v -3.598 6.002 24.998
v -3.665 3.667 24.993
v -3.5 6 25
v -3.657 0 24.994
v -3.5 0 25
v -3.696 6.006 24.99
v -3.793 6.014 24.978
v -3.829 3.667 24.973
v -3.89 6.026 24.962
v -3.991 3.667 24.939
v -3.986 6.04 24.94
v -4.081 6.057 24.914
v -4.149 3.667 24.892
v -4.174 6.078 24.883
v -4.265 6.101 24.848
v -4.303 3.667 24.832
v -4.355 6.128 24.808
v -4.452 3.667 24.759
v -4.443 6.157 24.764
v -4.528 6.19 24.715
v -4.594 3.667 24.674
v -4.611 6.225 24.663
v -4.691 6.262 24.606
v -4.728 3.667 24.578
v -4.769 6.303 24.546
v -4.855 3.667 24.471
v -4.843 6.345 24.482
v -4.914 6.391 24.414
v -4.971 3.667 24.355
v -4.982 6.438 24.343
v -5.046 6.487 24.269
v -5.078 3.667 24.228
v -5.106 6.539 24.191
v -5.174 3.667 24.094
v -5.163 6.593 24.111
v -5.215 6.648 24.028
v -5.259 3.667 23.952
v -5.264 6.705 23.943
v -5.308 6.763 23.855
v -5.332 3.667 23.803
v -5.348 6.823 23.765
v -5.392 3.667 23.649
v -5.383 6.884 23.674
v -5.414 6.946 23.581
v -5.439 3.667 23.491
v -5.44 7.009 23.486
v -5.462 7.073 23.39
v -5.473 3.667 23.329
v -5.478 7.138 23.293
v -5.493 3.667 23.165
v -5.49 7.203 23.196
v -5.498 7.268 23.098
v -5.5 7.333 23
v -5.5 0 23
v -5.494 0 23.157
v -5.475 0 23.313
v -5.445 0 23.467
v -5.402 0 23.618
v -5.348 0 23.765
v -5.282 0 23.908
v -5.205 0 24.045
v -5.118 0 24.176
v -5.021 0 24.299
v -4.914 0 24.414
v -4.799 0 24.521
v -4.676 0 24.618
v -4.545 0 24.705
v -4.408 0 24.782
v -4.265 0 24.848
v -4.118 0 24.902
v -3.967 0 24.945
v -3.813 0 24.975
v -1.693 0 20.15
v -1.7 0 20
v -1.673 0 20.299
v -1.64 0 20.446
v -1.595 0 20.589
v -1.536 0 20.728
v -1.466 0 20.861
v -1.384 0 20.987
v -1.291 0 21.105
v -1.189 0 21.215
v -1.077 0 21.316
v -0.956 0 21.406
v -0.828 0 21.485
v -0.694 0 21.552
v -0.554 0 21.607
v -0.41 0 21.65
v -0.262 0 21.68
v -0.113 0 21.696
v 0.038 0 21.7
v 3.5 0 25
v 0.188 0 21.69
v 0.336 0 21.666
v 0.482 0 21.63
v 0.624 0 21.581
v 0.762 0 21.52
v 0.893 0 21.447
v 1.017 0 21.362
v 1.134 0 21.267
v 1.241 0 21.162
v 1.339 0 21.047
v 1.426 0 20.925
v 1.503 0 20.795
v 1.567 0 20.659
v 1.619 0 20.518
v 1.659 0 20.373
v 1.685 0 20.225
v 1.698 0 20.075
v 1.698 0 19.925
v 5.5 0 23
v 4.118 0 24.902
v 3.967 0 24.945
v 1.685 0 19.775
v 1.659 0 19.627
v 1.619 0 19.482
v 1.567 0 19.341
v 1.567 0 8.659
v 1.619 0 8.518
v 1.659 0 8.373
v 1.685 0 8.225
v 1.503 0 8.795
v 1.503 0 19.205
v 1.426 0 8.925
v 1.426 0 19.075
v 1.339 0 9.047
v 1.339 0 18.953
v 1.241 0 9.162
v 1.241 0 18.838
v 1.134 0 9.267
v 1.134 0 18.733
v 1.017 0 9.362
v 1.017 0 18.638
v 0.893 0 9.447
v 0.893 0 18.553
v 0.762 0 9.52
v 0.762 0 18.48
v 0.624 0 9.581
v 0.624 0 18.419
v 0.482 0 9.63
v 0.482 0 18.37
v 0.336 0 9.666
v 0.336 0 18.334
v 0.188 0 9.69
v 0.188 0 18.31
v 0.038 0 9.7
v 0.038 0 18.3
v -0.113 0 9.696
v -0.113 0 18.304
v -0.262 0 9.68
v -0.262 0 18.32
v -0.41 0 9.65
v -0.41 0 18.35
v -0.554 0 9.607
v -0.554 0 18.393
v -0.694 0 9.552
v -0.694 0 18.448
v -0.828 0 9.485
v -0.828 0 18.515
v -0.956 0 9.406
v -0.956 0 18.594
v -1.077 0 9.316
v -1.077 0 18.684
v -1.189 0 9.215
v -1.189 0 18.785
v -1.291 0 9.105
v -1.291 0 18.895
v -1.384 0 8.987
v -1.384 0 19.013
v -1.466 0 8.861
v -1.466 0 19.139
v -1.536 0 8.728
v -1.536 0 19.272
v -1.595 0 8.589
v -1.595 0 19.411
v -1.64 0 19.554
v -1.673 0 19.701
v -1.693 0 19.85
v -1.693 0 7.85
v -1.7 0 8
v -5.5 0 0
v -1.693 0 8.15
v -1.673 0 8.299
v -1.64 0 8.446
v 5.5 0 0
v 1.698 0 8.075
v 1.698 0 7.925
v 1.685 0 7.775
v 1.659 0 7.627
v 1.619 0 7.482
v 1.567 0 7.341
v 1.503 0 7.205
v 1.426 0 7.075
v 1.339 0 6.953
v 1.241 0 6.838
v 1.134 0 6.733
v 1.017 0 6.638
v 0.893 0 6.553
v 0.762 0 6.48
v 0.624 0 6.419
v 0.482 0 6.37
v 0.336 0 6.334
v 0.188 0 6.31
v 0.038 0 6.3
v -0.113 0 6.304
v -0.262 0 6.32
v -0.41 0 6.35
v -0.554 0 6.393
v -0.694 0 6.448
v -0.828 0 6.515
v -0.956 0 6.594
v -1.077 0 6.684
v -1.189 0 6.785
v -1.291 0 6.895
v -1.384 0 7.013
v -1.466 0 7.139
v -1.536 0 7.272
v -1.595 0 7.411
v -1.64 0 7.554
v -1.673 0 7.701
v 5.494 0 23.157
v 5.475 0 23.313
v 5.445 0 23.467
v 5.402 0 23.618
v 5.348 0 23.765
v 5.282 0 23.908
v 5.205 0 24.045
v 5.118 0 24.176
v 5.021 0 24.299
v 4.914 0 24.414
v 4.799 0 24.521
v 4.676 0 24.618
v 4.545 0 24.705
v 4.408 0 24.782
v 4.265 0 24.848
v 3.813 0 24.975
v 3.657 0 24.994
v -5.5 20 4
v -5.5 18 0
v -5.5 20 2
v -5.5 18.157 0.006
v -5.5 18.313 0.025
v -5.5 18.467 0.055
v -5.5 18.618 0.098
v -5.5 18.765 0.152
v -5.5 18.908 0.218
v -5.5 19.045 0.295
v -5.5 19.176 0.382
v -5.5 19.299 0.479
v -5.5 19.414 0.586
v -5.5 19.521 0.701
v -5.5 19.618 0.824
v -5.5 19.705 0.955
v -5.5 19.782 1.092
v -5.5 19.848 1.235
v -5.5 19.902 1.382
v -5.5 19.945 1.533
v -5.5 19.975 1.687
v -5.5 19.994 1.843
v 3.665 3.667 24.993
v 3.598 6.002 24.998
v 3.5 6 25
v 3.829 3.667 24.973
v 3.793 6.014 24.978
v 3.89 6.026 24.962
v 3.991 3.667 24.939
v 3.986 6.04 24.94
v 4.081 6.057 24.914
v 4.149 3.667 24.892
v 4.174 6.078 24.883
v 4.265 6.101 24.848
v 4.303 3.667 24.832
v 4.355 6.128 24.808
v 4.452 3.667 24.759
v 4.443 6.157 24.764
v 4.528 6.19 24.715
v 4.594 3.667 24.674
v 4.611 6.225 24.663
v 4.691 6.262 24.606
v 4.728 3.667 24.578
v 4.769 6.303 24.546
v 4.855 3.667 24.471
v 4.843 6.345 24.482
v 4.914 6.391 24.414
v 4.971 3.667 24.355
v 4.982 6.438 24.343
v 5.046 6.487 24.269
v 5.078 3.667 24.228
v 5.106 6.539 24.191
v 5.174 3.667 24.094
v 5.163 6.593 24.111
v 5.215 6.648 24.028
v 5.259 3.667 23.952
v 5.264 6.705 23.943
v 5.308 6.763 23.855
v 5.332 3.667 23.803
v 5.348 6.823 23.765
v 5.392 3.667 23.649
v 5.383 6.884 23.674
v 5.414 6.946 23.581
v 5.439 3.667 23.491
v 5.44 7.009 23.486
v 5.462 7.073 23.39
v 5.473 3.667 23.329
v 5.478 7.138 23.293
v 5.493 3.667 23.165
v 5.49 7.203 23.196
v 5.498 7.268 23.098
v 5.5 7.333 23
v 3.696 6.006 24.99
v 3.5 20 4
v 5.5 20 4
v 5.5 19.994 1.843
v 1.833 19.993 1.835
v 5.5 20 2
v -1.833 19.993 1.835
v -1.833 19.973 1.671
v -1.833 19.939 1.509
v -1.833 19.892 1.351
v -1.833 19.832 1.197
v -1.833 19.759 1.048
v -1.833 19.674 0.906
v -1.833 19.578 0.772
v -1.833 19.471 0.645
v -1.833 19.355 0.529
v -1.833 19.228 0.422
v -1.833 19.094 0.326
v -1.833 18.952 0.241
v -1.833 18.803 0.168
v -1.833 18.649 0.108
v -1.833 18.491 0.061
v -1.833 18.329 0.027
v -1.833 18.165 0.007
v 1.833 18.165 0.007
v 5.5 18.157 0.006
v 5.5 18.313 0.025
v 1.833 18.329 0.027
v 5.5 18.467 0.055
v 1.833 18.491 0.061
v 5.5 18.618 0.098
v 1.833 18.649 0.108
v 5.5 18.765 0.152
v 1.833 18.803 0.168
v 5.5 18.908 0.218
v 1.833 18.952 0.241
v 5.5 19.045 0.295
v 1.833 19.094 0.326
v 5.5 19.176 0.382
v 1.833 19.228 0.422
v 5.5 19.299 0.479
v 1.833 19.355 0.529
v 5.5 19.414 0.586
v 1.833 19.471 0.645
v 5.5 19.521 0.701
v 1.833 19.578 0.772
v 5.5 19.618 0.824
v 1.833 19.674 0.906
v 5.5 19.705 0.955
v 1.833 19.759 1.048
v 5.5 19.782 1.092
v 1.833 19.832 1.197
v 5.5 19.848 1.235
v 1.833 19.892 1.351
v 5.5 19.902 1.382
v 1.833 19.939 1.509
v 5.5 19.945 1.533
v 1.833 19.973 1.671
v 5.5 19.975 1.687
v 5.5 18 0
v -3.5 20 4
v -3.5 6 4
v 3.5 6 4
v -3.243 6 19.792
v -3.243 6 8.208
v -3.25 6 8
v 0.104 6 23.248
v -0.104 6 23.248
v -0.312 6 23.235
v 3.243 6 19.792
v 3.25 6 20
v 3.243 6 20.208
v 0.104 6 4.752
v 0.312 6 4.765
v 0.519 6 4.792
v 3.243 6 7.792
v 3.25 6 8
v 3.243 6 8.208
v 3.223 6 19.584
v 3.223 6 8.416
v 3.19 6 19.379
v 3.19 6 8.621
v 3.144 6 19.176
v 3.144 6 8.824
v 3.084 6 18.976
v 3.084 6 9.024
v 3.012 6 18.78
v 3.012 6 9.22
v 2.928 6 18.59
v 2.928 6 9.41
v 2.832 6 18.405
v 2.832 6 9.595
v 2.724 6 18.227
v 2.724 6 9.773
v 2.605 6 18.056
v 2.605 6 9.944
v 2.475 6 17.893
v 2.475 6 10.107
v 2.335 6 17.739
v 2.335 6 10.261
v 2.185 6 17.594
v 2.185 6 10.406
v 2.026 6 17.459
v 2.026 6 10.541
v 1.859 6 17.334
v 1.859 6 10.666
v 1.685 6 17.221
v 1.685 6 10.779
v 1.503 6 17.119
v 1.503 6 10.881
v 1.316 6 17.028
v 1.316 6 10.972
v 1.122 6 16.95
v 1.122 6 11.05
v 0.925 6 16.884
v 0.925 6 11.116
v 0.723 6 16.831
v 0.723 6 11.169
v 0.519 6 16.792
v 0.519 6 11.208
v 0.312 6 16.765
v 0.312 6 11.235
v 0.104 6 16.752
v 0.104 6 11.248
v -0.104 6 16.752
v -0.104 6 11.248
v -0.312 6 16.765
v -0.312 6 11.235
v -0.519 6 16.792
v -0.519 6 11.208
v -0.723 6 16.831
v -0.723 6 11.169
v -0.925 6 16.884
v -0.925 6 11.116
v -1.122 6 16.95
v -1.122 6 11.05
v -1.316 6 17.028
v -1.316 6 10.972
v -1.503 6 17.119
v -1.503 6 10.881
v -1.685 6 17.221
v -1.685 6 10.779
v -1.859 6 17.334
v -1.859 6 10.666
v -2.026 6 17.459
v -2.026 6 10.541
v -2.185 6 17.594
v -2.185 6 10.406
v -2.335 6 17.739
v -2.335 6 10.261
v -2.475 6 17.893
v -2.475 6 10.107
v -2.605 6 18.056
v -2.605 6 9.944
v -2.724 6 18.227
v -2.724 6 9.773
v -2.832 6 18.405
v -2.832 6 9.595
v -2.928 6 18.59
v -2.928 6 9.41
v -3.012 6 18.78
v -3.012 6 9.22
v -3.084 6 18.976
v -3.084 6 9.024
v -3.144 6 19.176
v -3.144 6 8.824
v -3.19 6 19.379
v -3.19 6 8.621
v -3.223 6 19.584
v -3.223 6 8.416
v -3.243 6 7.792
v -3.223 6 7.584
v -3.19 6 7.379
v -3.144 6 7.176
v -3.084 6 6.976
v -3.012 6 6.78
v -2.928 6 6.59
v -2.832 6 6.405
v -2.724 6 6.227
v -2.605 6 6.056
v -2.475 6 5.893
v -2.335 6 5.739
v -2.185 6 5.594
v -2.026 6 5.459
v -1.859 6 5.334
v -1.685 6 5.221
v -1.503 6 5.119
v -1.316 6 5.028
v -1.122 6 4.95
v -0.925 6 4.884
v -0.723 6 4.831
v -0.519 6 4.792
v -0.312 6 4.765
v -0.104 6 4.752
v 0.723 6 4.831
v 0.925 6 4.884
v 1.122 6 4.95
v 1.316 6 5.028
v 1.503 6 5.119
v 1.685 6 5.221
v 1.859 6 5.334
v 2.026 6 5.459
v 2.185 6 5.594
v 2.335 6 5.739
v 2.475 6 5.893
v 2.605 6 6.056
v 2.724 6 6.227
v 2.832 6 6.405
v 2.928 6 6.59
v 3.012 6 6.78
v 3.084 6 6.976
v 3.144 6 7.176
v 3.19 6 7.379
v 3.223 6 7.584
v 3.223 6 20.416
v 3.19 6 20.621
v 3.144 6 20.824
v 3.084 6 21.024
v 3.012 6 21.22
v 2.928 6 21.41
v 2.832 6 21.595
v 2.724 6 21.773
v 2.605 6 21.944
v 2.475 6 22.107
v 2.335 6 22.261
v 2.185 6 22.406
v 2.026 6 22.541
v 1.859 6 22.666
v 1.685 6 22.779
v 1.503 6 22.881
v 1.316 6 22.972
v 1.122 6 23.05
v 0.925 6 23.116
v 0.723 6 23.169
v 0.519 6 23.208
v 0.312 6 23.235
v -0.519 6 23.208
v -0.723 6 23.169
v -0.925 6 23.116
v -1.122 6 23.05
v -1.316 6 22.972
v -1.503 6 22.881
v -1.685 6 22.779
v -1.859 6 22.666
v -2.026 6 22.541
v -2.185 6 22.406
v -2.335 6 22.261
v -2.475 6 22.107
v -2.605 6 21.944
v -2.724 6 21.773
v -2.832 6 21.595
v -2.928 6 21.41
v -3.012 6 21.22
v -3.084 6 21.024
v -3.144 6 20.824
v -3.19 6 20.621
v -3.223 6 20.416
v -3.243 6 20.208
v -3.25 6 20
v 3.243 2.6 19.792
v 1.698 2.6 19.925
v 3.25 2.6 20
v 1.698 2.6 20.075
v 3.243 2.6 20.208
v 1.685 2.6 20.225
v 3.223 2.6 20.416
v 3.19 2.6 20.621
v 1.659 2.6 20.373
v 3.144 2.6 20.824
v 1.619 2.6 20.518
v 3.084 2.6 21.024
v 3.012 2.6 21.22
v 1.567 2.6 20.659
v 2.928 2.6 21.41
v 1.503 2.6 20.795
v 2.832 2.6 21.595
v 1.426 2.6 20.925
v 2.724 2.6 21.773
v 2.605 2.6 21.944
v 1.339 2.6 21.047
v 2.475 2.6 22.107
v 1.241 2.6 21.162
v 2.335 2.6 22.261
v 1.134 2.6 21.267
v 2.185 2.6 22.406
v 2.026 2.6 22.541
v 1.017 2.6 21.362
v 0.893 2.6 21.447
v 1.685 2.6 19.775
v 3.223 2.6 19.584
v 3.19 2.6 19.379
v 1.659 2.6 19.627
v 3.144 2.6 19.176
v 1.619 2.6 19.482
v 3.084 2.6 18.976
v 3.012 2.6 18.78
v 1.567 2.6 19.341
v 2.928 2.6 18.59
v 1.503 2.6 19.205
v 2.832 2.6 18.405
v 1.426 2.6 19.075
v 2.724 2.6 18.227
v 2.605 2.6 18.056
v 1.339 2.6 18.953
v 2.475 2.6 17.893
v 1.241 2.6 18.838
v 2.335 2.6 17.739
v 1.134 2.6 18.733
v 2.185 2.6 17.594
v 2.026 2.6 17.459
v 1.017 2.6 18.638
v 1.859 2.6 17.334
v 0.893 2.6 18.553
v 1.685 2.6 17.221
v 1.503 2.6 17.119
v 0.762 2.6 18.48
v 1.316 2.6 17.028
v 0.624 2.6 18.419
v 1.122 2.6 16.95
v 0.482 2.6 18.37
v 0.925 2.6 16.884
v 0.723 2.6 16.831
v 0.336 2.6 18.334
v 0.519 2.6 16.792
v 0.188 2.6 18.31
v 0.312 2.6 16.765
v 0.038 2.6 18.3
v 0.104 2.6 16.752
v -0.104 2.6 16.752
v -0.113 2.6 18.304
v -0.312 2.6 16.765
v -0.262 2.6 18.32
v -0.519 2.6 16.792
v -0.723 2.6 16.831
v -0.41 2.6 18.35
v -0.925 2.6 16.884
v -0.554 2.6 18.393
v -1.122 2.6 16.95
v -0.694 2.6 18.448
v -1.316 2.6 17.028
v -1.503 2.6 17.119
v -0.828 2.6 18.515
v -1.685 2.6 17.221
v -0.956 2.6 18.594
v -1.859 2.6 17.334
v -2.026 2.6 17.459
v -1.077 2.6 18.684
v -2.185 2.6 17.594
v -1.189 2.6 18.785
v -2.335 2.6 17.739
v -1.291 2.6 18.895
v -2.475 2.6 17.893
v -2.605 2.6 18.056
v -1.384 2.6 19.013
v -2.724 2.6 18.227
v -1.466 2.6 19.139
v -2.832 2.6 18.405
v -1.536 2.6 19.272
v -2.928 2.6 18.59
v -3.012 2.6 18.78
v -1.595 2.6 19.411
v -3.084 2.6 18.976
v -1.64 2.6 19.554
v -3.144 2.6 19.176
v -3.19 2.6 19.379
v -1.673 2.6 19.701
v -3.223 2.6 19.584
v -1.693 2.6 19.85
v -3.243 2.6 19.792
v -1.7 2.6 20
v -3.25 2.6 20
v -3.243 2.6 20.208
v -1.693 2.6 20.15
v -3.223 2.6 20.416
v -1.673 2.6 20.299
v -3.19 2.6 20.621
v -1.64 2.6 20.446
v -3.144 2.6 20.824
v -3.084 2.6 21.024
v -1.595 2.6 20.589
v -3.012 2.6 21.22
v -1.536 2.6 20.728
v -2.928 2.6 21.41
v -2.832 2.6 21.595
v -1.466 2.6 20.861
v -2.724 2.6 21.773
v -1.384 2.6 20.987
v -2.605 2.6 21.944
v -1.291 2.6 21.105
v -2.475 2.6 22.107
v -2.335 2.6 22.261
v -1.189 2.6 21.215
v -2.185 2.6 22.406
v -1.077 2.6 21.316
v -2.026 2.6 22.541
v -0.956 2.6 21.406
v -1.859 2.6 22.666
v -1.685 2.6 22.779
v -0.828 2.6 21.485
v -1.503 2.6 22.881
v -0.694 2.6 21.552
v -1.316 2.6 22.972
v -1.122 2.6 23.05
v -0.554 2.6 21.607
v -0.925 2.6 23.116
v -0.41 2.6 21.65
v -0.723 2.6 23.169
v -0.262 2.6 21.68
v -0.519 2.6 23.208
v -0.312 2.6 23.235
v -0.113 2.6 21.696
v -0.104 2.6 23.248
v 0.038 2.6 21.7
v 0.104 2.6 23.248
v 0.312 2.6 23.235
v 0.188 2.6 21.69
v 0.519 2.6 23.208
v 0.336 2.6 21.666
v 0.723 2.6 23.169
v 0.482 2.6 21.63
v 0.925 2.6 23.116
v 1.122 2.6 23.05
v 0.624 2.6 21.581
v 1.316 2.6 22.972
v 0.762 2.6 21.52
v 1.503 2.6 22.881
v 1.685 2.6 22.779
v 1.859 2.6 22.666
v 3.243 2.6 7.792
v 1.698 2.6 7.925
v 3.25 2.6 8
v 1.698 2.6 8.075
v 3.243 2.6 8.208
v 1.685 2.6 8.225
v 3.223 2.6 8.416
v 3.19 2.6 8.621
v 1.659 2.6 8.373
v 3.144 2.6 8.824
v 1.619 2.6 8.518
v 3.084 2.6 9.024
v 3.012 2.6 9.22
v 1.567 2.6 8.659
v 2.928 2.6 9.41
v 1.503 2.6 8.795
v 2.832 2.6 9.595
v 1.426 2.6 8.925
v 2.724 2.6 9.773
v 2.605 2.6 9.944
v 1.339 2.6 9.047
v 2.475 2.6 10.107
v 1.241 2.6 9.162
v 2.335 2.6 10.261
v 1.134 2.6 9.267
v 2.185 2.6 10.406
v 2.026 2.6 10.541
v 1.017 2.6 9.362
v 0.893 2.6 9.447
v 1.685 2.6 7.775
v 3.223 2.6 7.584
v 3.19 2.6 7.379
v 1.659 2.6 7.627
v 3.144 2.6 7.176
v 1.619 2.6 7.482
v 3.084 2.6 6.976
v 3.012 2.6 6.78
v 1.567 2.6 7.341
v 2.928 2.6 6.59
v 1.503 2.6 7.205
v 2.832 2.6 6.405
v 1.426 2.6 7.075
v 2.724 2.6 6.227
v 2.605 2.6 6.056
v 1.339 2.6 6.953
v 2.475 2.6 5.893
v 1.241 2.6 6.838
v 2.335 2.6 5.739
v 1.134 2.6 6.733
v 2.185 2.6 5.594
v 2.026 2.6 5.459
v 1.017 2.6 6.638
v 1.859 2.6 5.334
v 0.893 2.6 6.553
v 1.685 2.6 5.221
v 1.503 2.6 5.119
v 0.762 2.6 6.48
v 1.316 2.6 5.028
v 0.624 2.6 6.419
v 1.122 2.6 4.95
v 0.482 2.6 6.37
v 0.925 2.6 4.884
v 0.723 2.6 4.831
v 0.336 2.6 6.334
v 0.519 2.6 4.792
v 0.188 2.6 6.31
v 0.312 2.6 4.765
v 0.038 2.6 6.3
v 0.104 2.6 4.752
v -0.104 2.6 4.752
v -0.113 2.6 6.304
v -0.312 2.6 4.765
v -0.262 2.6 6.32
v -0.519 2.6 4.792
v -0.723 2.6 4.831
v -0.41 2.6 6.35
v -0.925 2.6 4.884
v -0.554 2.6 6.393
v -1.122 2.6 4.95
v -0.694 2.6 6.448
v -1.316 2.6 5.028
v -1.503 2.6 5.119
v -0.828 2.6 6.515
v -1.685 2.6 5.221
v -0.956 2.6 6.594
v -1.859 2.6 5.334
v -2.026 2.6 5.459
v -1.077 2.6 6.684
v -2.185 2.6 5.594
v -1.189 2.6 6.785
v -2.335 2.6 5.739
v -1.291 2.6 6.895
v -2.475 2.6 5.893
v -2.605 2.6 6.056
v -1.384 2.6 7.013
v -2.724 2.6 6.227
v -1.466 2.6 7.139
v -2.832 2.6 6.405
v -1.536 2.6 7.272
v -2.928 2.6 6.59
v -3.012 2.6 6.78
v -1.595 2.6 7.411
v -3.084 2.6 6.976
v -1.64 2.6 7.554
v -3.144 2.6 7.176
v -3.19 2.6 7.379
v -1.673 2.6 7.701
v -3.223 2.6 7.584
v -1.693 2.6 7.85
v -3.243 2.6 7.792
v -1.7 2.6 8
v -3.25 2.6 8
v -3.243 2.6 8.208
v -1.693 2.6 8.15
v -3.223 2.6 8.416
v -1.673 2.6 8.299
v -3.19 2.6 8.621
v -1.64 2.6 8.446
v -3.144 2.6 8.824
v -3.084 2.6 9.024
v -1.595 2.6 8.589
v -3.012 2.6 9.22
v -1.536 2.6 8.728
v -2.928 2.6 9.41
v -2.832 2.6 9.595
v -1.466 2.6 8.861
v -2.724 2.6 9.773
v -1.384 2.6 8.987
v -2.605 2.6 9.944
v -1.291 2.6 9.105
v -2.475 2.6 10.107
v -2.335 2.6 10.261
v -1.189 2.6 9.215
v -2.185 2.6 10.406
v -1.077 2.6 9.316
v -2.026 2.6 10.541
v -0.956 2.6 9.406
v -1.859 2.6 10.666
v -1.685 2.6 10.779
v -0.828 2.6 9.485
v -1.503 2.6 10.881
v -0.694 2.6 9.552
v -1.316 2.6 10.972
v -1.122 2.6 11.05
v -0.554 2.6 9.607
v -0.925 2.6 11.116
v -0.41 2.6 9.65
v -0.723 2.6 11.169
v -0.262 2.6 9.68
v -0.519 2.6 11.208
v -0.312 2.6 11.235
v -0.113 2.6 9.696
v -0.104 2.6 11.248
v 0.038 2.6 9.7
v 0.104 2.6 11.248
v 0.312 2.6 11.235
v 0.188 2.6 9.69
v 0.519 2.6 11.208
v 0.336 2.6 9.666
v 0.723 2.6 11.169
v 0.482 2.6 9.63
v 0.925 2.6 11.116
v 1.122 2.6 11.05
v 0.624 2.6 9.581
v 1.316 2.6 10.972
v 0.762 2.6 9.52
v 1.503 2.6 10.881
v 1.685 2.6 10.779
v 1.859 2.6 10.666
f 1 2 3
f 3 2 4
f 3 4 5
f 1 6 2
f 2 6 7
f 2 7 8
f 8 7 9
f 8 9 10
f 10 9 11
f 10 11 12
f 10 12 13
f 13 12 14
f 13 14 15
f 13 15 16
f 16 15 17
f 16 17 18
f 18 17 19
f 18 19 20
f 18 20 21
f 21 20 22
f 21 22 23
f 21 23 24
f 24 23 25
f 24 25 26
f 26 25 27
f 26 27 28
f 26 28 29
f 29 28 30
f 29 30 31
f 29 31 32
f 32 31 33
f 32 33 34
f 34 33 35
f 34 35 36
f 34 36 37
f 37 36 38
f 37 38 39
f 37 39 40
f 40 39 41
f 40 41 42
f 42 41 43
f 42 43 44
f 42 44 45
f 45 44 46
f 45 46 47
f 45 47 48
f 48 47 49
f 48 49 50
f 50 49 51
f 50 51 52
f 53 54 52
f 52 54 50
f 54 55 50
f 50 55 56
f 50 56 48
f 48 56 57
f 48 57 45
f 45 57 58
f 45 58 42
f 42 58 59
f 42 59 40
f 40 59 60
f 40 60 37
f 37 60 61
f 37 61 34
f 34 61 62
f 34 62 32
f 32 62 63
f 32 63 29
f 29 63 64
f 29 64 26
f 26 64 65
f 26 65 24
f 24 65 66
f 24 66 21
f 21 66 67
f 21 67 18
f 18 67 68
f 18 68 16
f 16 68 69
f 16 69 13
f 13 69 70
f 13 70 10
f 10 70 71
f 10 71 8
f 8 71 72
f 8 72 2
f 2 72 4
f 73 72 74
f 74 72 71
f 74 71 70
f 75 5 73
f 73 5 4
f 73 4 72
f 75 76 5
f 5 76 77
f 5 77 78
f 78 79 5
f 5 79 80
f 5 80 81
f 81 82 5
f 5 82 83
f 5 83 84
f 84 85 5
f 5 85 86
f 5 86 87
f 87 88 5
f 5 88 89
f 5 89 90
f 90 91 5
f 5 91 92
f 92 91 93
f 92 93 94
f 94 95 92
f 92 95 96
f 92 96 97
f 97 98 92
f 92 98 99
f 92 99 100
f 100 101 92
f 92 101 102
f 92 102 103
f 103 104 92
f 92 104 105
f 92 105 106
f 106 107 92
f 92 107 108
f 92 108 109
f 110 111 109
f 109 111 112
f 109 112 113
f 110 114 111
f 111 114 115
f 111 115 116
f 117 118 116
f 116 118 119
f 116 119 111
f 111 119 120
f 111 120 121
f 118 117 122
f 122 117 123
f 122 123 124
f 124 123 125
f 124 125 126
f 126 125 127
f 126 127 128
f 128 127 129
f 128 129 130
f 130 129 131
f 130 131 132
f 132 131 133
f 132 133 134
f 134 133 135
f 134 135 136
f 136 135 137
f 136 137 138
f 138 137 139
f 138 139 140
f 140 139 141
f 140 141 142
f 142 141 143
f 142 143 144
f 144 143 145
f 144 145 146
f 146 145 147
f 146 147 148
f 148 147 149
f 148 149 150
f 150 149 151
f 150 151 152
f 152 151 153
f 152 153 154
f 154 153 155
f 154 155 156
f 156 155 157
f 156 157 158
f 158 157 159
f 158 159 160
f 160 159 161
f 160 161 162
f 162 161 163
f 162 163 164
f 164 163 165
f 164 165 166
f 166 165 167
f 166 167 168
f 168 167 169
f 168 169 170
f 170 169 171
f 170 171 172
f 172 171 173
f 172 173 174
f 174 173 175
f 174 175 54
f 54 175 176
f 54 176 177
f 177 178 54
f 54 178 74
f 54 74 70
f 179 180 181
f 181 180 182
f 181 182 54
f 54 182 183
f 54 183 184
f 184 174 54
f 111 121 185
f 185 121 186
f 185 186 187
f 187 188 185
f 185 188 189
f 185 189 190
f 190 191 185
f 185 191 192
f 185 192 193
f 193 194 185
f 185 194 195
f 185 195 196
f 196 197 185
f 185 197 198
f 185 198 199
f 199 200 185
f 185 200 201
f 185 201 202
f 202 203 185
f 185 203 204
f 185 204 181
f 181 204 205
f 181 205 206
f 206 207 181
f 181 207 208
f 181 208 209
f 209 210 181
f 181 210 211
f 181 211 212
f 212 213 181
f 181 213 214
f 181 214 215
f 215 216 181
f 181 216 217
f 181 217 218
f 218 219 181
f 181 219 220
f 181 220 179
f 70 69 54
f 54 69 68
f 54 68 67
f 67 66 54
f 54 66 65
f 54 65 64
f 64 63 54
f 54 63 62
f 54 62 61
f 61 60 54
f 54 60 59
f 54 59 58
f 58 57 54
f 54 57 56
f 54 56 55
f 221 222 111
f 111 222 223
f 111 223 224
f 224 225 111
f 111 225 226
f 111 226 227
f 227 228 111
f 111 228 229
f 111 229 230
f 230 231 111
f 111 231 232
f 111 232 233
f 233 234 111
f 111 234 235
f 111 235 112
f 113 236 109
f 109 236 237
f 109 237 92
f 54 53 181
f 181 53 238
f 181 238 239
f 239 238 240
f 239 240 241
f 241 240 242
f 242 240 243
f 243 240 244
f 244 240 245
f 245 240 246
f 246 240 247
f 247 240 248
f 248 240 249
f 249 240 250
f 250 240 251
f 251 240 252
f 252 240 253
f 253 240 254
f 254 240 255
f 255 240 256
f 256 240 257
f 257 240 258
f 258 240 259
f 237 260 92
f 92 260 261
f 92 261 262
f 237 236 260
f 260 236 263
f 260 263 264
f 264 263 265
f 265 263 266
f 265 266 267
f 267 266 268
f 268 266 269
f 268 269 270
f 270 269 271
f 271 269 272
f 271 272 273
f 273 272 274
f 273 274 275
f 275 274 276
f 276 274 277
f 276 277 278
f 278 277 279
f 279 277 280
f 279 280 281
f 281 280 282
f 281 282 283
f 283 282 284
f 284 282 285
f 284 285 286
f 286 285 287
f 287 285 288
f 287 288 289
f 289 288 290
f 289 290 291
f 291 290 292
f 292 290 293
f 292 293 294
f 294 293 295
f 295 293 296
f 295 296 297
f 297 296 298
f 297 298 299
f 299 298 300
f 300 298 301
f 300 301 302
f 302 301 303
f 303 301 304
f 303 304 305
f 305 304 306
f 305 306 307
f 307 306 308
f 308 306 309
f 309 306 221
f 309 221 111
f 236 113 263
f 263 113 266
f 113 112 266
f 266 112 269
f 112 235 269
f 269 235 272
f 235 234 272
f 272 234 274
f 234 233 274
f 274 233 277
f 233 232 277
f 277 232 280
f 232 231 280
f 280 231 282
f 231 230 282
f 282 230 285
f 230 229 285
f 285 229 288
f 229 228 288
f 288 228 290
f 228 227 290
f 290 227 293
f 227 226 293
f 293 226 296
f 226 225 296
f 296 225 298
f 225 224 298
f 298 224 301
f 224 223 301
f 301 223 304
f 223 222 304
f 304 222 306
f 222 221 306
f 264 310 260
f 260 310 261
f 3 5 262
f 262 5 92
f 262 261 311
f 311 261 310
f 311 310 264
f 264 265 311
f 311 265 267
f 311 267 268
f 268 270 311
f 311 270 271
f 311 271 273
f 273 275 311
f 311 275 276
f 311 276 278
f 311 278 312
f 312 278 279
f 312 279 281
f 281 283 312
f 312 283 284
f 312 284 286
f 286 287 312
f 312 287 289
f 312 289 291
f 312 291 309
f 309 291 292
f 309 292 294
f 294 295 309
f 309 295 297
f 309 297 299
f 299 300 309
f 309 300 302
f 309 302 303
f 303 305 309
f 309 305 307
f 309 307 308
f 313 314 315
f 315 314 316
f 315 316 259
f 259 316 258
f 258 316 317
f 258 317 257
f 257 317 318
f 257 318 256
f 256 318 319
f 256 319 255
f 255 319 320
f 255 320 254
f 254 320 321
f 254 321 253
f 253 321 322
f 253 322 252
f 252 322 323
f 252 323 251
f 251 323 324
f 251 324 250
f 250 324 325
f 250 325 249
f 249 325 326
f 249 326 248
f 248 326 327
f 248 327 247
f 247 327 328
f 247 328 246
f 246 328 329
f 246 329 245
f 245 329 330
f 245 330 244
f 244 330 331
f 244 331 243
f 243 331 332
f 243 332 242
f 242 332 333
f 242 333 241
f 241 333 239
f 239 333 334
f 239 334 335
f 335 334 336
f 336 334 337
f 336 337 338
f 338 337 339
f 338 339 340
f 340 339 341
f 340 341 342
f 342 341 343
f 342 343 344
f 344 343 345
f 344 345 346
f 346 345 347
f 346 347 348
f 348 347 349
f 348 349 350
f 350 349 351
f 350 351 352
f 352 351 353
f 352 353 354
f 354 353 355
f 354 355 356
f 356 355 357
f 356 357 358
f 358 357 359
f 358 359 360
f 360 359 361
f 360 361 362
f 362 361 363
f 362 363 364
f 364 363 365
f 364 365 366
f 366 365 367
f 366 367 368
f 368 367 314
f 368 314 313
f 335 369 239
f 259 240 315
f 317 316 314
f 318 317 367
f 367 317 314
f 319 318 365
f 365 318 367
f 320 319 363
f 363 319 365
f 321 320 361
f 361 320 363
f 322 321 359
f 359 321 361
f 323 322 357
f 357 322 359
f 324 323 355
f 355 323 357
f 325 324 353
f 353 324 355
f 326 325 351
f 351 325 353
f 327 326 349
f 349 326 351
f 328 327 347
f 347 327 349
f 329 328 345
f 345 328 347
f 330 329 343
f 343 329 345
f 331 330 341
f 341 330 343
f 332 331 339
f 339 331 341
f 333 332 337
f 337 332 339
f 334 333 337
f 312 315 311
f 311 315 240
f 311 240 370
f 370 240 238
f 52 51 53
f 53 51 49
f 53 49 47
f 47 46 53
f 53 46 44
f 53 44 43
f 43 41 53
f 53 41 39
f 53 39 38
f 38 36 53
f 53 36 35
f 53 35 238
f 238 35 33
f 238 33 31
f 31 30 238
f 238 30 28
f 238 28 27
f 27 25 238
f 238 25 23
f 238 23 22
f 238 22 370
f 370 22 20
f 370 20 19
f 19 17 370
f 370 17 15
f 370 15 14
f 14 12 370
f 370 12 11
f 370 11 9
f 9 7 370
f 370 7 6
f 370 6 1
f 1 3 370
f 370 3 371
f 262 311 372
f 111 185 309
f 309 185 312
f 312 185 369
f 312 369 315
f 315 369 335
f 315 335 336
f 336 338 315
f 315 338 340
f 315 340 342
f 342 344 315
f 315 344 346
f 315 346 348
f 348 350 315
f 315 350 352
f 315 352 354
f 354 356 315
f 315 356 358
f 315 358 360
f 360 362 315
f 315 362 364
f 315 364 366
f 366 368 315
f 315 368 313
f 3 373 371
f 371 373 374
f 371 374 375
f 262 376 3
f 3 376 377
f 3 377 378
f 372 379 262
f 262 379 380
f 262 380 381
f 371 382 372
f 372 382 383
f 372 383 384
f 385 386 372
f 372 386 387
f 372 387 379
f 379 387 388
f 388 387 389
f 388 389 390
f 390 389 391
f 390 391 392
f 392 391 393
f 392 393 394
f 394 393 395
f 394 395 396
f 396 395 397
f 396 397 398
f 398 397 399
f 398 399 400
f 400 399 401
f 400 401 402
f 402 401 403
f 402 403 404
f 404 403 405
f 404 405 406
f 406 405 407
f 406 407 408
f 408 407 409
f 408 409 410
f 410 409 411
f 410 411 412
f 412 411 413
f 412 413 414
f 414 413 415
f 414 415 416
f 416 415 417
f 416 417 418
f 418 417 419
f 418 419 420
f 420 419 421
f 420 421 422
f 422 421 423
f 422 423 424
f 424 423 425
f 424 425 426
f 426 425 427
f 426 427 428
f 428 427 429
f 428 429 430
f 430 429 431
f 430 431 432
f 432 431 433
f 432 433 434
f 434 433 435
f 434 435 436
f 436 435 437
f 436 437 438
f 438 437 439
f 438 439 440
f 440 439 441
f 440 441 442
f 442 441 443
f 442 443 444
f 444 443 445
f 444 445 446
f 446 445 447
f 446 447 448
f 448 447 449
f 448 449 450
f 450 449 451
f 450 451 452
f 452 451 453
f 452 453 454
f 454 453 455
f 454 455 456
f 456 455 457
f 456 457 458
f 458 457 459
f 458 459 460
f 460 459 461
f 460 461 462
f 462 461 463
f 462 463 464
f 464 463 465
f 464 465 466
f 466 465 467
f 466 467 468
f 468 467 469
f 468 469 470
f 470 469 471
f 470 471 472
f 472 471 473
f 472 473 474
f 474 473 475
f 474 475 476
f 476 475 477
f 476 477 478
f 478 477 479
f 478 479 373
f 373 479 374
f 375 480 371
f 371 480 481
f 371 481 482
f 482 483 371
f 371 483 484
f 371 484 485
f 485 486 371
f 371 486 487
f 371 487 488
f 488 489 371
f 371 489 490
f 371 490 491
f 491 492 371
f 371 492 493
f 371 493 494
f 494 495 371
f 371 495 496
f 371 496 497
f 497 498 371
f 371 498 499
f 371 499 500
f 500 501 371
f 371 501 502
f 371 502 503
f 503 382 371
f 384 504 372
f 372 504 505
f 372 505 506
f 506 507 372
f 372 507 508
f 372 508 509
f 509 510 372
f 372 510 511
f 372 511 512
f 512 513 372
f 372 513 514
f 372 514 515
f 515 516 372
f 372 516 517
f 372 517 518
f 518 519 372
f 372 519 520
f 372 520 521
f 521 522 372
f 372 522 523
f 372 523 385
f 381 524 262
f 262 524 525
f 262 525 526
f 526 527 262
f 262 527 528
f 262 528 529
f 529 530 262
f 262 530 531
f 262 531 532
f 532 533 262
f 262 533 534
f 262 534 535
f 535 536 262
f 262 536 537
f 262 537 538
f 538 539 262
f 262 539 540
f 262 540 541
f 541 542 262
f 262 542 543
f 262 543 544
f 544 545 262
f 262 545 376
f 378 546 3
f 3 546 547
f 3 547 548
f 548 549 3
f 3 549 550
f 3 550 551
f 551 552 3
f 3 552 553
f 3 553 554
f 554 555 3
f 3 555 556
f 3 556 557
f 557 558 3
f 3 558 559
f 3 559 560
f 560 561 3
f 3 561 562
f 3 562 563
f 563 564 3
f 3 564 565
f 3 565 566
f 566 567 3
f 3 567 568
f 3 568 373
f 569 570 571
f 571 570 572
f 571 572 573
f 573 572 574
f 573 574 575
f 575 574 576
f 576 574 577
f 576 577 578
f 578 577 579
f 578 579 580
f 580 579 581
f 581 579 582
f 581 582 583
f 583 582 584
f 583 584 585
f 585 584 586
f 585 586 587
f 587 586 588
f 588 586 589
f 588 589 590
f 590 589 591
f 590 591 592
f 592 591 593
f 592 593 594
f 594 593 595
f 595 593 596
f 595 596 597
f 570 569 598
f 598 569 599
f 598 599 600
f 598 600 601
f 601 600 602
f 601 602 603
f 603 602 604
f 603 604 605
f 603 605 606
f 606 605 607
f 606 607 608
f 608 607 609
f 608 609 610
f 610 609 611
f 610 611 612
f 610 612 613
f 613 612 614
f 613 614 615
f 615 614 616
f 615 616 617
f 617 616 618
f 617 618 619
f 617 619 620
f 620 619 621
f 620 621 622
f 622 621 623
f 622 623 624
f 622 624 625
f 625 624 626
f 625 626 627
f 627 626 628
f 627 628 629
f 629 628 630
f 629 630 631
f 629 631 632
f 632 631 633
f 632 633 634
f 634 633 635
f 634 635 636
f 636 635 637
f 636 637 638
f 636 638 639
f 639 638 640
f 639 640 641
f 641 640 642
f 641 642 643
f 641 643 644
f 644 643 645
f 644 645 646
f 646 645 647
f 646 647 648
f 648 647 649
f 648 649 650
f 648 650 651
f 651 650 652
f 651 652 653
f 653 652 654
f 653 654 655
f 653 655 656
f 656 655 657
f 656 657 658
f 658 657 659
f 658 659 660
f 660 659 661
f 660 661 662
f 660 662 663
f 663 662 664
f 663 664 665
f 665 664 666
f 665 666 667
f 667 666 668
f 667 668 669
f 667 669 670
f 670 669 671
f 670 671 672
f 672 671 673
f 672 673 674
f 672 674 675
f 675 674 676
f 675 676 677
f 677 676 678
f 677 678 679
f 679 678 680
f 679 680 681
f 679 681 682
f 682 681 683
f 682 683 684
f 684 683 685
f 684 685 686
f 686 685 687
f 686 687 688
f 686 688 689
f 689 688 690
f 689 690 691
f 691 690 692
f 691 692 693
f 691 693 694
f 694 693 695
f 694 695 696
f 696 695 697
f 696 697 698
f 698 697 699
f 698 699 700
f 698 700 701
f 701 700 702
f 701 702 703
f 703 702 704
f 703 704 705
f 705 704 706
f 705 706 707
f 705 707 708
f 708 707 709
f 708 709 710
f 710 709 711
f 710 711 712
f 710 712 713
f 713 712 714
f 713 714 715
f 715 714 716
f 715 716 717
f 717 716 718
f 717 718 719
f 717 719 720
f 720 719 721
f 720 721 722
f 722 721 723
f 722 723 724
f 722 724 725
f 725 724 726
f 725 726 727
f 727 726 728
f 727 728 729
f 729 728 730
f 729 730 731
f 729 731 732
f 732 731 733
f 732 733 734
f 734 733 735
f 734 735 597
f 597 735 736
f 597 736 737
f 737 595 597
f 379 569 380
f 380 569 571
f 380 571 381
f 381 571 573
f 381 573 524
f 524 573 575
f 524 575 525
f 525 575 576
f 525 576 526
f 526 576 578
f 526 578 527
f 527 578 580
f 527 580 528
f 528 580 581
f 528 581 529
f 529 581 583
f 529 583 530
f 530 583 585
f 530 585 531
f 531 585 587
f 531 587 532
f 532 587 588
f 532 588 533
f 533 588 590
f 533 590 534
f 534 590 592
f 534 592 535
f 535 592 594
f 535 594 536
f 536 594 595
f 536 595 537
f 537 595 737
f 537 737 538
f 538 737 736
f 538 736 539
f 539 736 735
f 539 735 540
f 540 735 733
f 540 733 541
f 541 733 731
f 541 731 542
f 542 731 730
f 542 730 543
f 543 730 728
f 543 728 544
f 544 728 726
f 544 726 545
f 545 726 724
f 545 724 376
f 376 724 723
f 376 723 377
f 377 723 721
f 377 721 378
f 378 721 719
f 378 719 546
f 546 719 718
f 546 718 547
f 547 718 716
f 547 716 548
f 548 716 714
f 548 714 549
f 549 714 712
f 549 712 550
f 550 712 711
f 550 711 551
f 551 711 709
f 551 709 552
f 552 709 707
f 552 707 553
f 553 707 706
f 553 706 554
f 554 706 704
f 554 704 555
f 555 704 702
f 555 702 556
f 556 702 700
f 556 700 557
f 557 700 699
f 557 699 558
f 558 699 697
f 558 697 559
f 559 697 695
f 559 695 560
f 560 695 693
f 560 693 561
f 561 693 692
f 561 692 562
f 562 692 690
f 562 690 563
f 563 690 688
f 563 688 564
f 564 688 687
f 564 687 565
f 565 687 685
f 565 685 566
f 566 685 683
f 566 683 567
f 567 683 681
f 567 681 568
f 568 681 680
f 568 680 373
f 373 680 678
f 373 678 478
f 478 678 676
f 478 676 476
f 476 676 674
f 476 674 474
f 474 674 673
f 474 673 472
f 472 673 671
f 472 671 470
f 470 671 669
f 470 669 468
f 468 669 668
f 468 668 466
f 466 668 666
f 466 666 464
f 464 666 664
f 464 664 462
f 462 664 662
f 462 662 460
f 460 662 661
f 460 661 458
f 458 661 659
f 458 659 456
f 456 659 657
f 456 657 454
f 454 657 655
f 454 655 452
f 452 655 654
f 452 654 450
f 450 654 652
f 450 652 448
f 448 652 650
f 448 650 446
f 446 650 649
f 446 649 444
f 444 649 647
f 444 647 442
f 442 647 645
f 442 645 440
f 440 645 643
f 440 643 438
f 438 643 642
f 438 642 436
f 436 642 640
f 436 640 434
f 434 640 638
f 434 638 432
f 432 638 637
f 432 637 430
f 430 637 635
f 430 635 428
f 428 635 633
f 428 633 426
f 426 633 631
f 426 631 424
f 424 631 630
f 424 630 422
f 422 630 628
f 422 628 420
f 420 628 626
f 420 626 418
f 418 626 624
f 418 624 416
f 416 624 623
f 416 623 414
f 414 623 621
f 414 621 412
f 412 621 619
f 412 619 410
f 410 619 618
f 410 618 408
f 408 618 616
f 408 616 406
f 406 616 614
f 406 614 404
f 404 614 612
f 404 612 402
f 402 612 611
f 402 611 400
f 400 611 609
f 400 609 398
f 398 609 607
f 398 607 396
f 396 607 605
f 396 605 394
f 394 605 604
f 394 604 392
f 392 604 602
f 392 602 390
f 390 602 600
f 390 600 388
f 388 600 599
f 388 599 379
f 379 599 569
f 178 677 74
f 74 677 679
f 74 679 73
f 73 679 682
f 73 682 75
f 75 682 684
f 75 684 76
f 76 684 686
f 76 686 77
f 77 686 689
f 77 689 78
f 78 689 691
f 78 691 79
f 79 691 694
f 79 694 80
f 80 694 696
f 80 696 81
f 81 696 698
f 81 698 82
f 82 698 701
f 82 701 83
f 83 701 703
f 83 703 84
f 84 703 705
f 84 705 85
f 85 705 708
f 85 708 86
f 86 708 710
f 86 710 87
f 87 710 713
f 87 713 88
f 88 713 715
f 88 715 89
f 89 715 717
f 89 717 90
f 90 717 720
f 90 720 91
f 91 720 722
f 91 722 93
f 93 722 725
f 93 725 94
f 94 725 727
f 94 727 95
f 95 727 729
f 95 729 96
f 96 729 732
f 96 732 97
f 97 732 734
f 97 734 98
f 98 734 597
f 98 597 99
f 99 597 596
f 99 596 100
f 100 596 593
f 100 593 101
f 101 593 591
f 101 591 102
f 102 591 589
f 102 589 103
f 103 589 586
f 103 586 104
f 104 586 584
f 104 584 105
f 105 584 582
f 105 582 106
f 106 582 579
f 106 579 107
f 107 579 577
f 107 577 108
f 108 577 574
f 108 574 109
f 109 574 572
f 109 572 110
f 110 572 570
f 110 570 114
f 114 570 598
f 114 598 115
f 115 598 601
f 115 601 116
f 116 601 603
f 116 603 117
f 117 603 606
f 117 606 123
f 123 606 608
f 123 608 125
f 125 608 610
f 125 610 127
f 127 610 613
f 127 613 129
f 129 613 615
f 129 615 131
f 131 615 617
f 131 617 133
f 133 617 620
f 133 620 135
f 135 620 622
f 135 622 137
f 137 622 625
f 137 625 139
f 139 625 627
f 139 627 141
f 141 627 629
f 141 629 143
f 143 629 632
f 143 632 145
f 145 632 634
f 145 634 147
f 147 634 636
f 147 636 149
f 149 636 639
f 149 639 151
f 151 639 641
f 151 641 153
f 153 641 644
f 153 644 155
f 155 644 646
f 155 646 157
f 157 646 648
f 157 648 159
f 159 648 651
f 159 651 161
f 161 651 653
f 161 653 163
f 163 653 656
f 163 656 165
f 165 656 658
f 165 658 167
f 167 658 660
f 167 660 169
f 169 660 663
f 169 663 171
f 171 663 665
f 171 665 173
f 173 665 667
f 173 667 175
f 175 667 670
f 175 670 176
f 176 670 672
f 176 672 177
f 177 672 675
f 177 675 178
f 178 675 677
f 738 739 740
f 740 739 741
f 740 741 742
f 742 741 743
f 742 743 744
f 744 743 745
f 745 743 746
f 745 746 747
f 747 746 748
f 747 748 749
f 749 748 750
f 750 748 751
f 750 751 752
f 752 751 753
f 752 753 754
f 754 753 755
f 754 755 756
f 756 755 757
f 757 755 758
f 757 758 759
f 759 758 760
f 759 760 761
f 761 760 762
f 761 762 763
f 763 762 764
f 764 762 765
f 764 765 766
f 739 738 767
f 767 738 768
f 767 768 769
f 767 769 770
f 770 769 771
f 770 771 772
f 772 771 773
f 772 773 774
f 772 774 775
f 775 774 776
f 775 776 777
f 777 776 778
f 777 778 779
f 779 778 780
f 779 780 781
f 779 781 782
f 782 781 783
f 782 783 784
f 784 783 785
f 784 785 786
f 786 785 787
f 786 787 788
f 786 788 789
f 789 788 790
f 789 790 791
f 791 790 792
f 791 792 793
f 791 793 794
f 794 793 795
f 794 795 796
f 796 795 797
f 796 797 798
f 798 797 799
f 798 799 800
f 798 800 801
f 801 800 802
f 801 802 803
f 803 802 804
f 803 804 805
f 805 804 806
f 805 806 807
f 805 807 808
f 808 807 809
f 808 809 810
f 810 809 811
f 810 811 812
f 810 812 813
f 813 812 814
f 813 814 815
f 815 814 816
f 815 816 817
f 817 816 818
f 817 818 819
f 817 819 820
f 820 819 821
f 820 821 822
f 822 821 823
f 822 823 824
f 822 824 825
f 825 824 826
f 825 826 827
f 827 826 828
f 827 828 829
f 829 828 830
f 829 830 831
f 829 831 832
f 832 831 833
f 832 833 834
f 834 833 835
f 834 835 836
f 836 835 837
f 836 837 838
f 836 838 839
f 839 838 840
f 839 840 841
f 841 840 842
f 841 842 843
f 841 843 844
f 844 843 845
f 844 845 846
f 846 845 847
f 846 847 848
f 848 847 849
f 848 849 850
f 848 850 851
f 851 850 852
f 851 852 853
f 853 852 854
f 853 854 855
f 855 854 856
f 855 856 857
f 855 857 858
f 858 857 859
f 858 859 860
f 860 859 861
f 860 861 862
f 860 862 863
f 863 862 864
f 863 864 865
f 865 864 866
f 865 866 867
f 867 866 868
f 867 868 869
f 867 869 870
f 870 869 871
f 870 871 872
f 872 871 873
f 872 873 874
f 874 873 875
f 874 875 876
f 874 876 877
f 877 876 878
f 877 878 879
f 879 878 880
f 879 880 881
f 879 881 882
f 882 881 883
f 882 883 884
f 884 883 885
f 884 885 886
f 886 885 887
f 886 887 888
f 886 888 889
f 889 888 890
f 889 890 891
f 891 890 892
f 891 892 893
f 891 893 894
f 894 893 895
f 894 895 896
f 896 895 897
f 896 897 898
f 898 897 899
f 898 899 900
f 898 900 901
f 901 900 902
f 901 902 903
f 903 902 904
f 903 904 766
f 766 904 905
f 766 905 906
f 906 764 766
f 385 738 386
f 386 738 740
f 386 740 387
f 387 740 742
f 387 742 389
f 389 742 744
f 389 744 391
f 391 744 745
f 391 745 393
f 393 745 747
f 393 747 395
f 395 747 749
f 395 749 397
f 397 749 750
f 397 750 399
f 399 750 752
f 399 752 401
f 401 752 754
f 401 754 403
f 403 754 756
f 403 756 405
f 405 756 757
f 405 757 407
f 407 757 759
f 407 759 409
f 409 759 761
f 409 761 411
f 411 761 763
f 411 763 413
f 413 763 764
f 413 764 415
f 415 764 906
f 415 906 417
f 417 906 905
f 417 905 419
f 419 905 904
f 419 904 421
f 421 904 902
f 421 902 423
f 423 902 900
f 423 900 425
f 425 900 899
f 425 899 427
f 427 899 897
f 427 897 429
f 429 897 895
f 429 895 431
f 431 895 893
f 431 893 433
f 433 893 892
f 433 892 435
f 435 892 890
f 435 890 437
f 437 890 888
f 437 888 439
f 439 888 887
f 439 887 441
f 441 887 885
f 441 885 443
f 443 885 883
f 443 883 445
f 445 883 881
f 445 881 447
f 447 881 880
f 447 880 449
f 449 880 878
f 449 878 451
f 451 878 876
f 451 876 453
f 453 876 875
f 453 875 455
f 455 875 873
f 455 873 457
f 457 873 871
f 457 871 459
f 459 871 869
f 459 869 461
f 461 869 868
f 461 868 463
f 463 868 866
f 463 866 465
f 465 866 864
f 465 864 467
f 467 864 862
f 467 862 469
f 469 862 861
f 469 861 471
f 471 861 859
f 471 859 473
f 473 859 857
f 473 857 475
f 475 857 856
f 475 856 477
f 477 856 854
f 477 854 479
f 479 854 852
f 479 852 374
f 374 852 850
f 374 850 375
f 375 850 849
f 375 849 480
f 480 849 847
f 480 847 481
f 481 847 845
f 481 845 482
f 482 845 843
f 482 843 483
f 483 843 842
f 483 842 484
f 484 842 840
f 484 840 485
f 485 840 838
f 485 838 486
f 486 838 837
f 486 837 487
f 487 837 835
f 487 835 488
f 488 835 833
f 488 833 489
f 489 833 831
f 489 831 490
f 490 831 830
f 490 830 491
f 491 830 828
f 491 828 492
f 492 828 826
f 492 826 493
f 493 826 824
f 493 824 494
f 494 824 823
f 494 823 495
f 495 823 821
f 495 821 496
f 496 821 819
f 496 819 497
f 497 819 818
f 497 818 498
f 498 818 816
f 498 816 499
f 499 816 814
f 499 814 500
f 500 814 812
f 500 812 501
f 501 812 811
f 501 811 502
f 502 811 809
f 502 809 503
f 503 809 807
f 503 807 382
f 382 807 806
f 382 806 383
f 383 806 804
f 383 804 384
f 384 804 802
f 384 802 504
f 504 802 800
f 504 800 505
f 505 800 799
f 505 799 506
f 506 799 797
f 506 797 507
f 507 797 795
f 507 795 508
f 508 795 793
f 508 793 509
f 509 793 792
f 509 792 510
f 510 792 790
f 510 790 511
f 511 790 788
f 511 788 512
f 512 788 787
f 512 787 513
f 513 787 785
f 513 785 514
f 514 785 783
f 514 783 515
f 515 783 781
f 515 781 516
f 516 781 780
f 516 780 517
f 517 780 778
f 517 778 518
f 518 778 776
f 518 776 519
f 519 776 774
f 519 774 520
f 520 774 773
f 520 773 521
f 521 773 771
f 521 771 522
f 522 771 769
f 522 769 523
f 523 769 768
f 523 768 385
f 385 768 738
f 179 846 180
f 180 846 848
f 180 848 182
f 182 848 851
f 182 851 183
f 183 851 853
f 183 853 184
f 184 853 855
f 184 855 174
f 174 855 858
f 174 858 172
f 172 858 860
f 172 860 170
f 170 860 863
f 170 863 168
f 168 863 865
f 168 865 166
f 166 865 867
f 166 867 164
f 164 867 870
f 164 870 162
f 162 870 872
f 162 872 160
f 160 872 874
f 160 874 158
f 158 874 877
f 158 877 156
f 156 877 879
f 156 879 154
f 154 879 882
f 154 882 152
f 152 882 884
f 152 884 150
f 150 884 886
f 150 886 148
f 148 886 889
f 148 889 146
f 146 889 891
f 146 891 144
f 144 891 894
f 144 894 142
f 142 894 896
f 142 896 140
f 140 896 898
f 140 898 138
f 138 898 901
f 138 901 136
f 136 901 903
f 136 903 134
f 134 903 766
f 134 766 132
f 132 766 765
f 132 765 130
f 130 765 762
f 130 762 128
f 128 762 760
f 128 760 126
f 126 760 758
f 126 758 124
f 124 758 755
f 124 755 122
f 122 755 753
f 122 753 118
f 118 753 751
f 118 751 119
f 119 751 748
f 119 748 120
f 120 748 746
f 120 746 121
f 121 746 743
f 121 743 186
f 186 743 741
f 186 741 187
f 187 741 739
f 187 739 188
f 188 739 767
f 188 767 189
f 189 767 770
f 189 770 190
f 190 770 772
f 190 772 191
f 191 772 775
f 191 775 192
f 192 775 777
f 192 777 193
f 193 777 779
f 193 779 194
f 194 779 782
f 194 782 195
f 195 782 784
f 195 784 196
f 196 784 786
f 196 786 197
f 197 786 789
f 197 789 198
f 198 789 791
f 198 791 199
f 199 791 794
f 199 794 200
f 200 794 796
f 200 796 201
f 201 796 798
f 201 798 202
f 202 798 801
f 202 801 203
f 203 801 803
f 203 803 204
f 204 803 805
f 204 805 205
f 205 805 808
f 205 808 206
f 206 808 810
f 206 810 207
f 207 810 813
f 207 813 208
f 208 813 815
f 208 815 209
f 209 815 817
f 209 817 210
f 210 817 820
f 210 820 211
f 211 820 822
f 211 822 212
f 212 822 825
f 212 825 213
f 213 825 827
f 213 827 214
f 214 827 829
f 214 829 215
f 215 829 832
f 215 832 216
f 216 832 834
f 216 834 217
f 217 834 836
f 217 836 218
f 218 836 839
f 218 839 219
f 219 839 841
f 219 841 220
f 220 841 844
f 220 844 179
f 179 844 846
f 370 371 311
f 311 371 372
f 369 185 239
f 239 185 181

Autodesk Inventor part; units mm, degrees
ref_plane "YZ Plane" through (0, 0, 0) normal (1, 0, 0) x (0, 1, 0)
ref_plane "XZ Plane" through (0, 0, 0) normal (0, 1, 0) x (-1, 0, 0)
ref_plane "XY Plane" through (0, 0, 0) normal (0, 0, 1) x (1, 0, 0)
sketch "Skizze1" plane through (0, 0, 0) normal (1, 0, 0) x (0, 1, 0)
  line L0 (0, 30) -> (0, -5) projected
  line L1 (-4, 0) -> (24, 0) projected
  line L2 (0, 25) -> (0, 0)
  line L3 (0, 0) -> (20, 0)
  line L4 (20, 0) -> (20, 4)
  line L5 (20, 4) -> (6, 4)
  line L6 (6, 4) -> (6, 25)
  line L7 (6, 25) -> (0, 25)
  dimension "d0" = 20
  dimension "d1" = 25
  dimension "d2" = 4
  dimension "d3" = 6
extrude "Extrusion1" add sketch "Skizze1" along normal mid plane 11
sketch "Skizze2" plane through (-5.5, 6, 25) normal (0, 1, 0) x (1, 0, 0)
  line L0 (5.5, 30) -> (5.5, -5) projected
  line L1 (11, 0) -> (0, 0) projected
  point P0 (5.5, 25)
  point P1 (5.5, 5)
  point P2 (5.5, 17)
  dimension "d6" = 5
  dimension "d14" = 12
hole "Bohrung1" at (0, 6, 20) at (0, 6, 8) direction (0, -1, 0) diameter 3.4 end through all counterbore diameter 6.5 counterbore depth 3.4 clearance for "Inbusschraube ISO 4762" size "M3" standard "ISO"
sketch "Skizze3" plane through (0, 0, 0) normal (1, 0, 0) x (0, 1, 0)
  line L0 (20, 4) -> (6, 4) projected
  line L1 (6, 25) -> (0, 25) projected
  line L2 (20, 4) -> (6, 25)
  line L3 (6, 25) -> (6, 4)
  line L4 (6, 4) -> (20, 4)
  point P0 (0, 0)
  point P1 (6, 4)
extrude "Extrusion2" add sketch "Skizze3" against normal blind 2 from surface at 5.5
mirror "Spiegeln1" about plane through (0, 0, 0) normal (1, 0, 0) of "Extrusion2"
fillet "Rundung2" radius 2 3 edges at (0, 20, 0) (5.5, 3, 25) (-5.5, 3, 25)
properties part number "27_Switch_Holder_X" material "PET-Kunststoff"
